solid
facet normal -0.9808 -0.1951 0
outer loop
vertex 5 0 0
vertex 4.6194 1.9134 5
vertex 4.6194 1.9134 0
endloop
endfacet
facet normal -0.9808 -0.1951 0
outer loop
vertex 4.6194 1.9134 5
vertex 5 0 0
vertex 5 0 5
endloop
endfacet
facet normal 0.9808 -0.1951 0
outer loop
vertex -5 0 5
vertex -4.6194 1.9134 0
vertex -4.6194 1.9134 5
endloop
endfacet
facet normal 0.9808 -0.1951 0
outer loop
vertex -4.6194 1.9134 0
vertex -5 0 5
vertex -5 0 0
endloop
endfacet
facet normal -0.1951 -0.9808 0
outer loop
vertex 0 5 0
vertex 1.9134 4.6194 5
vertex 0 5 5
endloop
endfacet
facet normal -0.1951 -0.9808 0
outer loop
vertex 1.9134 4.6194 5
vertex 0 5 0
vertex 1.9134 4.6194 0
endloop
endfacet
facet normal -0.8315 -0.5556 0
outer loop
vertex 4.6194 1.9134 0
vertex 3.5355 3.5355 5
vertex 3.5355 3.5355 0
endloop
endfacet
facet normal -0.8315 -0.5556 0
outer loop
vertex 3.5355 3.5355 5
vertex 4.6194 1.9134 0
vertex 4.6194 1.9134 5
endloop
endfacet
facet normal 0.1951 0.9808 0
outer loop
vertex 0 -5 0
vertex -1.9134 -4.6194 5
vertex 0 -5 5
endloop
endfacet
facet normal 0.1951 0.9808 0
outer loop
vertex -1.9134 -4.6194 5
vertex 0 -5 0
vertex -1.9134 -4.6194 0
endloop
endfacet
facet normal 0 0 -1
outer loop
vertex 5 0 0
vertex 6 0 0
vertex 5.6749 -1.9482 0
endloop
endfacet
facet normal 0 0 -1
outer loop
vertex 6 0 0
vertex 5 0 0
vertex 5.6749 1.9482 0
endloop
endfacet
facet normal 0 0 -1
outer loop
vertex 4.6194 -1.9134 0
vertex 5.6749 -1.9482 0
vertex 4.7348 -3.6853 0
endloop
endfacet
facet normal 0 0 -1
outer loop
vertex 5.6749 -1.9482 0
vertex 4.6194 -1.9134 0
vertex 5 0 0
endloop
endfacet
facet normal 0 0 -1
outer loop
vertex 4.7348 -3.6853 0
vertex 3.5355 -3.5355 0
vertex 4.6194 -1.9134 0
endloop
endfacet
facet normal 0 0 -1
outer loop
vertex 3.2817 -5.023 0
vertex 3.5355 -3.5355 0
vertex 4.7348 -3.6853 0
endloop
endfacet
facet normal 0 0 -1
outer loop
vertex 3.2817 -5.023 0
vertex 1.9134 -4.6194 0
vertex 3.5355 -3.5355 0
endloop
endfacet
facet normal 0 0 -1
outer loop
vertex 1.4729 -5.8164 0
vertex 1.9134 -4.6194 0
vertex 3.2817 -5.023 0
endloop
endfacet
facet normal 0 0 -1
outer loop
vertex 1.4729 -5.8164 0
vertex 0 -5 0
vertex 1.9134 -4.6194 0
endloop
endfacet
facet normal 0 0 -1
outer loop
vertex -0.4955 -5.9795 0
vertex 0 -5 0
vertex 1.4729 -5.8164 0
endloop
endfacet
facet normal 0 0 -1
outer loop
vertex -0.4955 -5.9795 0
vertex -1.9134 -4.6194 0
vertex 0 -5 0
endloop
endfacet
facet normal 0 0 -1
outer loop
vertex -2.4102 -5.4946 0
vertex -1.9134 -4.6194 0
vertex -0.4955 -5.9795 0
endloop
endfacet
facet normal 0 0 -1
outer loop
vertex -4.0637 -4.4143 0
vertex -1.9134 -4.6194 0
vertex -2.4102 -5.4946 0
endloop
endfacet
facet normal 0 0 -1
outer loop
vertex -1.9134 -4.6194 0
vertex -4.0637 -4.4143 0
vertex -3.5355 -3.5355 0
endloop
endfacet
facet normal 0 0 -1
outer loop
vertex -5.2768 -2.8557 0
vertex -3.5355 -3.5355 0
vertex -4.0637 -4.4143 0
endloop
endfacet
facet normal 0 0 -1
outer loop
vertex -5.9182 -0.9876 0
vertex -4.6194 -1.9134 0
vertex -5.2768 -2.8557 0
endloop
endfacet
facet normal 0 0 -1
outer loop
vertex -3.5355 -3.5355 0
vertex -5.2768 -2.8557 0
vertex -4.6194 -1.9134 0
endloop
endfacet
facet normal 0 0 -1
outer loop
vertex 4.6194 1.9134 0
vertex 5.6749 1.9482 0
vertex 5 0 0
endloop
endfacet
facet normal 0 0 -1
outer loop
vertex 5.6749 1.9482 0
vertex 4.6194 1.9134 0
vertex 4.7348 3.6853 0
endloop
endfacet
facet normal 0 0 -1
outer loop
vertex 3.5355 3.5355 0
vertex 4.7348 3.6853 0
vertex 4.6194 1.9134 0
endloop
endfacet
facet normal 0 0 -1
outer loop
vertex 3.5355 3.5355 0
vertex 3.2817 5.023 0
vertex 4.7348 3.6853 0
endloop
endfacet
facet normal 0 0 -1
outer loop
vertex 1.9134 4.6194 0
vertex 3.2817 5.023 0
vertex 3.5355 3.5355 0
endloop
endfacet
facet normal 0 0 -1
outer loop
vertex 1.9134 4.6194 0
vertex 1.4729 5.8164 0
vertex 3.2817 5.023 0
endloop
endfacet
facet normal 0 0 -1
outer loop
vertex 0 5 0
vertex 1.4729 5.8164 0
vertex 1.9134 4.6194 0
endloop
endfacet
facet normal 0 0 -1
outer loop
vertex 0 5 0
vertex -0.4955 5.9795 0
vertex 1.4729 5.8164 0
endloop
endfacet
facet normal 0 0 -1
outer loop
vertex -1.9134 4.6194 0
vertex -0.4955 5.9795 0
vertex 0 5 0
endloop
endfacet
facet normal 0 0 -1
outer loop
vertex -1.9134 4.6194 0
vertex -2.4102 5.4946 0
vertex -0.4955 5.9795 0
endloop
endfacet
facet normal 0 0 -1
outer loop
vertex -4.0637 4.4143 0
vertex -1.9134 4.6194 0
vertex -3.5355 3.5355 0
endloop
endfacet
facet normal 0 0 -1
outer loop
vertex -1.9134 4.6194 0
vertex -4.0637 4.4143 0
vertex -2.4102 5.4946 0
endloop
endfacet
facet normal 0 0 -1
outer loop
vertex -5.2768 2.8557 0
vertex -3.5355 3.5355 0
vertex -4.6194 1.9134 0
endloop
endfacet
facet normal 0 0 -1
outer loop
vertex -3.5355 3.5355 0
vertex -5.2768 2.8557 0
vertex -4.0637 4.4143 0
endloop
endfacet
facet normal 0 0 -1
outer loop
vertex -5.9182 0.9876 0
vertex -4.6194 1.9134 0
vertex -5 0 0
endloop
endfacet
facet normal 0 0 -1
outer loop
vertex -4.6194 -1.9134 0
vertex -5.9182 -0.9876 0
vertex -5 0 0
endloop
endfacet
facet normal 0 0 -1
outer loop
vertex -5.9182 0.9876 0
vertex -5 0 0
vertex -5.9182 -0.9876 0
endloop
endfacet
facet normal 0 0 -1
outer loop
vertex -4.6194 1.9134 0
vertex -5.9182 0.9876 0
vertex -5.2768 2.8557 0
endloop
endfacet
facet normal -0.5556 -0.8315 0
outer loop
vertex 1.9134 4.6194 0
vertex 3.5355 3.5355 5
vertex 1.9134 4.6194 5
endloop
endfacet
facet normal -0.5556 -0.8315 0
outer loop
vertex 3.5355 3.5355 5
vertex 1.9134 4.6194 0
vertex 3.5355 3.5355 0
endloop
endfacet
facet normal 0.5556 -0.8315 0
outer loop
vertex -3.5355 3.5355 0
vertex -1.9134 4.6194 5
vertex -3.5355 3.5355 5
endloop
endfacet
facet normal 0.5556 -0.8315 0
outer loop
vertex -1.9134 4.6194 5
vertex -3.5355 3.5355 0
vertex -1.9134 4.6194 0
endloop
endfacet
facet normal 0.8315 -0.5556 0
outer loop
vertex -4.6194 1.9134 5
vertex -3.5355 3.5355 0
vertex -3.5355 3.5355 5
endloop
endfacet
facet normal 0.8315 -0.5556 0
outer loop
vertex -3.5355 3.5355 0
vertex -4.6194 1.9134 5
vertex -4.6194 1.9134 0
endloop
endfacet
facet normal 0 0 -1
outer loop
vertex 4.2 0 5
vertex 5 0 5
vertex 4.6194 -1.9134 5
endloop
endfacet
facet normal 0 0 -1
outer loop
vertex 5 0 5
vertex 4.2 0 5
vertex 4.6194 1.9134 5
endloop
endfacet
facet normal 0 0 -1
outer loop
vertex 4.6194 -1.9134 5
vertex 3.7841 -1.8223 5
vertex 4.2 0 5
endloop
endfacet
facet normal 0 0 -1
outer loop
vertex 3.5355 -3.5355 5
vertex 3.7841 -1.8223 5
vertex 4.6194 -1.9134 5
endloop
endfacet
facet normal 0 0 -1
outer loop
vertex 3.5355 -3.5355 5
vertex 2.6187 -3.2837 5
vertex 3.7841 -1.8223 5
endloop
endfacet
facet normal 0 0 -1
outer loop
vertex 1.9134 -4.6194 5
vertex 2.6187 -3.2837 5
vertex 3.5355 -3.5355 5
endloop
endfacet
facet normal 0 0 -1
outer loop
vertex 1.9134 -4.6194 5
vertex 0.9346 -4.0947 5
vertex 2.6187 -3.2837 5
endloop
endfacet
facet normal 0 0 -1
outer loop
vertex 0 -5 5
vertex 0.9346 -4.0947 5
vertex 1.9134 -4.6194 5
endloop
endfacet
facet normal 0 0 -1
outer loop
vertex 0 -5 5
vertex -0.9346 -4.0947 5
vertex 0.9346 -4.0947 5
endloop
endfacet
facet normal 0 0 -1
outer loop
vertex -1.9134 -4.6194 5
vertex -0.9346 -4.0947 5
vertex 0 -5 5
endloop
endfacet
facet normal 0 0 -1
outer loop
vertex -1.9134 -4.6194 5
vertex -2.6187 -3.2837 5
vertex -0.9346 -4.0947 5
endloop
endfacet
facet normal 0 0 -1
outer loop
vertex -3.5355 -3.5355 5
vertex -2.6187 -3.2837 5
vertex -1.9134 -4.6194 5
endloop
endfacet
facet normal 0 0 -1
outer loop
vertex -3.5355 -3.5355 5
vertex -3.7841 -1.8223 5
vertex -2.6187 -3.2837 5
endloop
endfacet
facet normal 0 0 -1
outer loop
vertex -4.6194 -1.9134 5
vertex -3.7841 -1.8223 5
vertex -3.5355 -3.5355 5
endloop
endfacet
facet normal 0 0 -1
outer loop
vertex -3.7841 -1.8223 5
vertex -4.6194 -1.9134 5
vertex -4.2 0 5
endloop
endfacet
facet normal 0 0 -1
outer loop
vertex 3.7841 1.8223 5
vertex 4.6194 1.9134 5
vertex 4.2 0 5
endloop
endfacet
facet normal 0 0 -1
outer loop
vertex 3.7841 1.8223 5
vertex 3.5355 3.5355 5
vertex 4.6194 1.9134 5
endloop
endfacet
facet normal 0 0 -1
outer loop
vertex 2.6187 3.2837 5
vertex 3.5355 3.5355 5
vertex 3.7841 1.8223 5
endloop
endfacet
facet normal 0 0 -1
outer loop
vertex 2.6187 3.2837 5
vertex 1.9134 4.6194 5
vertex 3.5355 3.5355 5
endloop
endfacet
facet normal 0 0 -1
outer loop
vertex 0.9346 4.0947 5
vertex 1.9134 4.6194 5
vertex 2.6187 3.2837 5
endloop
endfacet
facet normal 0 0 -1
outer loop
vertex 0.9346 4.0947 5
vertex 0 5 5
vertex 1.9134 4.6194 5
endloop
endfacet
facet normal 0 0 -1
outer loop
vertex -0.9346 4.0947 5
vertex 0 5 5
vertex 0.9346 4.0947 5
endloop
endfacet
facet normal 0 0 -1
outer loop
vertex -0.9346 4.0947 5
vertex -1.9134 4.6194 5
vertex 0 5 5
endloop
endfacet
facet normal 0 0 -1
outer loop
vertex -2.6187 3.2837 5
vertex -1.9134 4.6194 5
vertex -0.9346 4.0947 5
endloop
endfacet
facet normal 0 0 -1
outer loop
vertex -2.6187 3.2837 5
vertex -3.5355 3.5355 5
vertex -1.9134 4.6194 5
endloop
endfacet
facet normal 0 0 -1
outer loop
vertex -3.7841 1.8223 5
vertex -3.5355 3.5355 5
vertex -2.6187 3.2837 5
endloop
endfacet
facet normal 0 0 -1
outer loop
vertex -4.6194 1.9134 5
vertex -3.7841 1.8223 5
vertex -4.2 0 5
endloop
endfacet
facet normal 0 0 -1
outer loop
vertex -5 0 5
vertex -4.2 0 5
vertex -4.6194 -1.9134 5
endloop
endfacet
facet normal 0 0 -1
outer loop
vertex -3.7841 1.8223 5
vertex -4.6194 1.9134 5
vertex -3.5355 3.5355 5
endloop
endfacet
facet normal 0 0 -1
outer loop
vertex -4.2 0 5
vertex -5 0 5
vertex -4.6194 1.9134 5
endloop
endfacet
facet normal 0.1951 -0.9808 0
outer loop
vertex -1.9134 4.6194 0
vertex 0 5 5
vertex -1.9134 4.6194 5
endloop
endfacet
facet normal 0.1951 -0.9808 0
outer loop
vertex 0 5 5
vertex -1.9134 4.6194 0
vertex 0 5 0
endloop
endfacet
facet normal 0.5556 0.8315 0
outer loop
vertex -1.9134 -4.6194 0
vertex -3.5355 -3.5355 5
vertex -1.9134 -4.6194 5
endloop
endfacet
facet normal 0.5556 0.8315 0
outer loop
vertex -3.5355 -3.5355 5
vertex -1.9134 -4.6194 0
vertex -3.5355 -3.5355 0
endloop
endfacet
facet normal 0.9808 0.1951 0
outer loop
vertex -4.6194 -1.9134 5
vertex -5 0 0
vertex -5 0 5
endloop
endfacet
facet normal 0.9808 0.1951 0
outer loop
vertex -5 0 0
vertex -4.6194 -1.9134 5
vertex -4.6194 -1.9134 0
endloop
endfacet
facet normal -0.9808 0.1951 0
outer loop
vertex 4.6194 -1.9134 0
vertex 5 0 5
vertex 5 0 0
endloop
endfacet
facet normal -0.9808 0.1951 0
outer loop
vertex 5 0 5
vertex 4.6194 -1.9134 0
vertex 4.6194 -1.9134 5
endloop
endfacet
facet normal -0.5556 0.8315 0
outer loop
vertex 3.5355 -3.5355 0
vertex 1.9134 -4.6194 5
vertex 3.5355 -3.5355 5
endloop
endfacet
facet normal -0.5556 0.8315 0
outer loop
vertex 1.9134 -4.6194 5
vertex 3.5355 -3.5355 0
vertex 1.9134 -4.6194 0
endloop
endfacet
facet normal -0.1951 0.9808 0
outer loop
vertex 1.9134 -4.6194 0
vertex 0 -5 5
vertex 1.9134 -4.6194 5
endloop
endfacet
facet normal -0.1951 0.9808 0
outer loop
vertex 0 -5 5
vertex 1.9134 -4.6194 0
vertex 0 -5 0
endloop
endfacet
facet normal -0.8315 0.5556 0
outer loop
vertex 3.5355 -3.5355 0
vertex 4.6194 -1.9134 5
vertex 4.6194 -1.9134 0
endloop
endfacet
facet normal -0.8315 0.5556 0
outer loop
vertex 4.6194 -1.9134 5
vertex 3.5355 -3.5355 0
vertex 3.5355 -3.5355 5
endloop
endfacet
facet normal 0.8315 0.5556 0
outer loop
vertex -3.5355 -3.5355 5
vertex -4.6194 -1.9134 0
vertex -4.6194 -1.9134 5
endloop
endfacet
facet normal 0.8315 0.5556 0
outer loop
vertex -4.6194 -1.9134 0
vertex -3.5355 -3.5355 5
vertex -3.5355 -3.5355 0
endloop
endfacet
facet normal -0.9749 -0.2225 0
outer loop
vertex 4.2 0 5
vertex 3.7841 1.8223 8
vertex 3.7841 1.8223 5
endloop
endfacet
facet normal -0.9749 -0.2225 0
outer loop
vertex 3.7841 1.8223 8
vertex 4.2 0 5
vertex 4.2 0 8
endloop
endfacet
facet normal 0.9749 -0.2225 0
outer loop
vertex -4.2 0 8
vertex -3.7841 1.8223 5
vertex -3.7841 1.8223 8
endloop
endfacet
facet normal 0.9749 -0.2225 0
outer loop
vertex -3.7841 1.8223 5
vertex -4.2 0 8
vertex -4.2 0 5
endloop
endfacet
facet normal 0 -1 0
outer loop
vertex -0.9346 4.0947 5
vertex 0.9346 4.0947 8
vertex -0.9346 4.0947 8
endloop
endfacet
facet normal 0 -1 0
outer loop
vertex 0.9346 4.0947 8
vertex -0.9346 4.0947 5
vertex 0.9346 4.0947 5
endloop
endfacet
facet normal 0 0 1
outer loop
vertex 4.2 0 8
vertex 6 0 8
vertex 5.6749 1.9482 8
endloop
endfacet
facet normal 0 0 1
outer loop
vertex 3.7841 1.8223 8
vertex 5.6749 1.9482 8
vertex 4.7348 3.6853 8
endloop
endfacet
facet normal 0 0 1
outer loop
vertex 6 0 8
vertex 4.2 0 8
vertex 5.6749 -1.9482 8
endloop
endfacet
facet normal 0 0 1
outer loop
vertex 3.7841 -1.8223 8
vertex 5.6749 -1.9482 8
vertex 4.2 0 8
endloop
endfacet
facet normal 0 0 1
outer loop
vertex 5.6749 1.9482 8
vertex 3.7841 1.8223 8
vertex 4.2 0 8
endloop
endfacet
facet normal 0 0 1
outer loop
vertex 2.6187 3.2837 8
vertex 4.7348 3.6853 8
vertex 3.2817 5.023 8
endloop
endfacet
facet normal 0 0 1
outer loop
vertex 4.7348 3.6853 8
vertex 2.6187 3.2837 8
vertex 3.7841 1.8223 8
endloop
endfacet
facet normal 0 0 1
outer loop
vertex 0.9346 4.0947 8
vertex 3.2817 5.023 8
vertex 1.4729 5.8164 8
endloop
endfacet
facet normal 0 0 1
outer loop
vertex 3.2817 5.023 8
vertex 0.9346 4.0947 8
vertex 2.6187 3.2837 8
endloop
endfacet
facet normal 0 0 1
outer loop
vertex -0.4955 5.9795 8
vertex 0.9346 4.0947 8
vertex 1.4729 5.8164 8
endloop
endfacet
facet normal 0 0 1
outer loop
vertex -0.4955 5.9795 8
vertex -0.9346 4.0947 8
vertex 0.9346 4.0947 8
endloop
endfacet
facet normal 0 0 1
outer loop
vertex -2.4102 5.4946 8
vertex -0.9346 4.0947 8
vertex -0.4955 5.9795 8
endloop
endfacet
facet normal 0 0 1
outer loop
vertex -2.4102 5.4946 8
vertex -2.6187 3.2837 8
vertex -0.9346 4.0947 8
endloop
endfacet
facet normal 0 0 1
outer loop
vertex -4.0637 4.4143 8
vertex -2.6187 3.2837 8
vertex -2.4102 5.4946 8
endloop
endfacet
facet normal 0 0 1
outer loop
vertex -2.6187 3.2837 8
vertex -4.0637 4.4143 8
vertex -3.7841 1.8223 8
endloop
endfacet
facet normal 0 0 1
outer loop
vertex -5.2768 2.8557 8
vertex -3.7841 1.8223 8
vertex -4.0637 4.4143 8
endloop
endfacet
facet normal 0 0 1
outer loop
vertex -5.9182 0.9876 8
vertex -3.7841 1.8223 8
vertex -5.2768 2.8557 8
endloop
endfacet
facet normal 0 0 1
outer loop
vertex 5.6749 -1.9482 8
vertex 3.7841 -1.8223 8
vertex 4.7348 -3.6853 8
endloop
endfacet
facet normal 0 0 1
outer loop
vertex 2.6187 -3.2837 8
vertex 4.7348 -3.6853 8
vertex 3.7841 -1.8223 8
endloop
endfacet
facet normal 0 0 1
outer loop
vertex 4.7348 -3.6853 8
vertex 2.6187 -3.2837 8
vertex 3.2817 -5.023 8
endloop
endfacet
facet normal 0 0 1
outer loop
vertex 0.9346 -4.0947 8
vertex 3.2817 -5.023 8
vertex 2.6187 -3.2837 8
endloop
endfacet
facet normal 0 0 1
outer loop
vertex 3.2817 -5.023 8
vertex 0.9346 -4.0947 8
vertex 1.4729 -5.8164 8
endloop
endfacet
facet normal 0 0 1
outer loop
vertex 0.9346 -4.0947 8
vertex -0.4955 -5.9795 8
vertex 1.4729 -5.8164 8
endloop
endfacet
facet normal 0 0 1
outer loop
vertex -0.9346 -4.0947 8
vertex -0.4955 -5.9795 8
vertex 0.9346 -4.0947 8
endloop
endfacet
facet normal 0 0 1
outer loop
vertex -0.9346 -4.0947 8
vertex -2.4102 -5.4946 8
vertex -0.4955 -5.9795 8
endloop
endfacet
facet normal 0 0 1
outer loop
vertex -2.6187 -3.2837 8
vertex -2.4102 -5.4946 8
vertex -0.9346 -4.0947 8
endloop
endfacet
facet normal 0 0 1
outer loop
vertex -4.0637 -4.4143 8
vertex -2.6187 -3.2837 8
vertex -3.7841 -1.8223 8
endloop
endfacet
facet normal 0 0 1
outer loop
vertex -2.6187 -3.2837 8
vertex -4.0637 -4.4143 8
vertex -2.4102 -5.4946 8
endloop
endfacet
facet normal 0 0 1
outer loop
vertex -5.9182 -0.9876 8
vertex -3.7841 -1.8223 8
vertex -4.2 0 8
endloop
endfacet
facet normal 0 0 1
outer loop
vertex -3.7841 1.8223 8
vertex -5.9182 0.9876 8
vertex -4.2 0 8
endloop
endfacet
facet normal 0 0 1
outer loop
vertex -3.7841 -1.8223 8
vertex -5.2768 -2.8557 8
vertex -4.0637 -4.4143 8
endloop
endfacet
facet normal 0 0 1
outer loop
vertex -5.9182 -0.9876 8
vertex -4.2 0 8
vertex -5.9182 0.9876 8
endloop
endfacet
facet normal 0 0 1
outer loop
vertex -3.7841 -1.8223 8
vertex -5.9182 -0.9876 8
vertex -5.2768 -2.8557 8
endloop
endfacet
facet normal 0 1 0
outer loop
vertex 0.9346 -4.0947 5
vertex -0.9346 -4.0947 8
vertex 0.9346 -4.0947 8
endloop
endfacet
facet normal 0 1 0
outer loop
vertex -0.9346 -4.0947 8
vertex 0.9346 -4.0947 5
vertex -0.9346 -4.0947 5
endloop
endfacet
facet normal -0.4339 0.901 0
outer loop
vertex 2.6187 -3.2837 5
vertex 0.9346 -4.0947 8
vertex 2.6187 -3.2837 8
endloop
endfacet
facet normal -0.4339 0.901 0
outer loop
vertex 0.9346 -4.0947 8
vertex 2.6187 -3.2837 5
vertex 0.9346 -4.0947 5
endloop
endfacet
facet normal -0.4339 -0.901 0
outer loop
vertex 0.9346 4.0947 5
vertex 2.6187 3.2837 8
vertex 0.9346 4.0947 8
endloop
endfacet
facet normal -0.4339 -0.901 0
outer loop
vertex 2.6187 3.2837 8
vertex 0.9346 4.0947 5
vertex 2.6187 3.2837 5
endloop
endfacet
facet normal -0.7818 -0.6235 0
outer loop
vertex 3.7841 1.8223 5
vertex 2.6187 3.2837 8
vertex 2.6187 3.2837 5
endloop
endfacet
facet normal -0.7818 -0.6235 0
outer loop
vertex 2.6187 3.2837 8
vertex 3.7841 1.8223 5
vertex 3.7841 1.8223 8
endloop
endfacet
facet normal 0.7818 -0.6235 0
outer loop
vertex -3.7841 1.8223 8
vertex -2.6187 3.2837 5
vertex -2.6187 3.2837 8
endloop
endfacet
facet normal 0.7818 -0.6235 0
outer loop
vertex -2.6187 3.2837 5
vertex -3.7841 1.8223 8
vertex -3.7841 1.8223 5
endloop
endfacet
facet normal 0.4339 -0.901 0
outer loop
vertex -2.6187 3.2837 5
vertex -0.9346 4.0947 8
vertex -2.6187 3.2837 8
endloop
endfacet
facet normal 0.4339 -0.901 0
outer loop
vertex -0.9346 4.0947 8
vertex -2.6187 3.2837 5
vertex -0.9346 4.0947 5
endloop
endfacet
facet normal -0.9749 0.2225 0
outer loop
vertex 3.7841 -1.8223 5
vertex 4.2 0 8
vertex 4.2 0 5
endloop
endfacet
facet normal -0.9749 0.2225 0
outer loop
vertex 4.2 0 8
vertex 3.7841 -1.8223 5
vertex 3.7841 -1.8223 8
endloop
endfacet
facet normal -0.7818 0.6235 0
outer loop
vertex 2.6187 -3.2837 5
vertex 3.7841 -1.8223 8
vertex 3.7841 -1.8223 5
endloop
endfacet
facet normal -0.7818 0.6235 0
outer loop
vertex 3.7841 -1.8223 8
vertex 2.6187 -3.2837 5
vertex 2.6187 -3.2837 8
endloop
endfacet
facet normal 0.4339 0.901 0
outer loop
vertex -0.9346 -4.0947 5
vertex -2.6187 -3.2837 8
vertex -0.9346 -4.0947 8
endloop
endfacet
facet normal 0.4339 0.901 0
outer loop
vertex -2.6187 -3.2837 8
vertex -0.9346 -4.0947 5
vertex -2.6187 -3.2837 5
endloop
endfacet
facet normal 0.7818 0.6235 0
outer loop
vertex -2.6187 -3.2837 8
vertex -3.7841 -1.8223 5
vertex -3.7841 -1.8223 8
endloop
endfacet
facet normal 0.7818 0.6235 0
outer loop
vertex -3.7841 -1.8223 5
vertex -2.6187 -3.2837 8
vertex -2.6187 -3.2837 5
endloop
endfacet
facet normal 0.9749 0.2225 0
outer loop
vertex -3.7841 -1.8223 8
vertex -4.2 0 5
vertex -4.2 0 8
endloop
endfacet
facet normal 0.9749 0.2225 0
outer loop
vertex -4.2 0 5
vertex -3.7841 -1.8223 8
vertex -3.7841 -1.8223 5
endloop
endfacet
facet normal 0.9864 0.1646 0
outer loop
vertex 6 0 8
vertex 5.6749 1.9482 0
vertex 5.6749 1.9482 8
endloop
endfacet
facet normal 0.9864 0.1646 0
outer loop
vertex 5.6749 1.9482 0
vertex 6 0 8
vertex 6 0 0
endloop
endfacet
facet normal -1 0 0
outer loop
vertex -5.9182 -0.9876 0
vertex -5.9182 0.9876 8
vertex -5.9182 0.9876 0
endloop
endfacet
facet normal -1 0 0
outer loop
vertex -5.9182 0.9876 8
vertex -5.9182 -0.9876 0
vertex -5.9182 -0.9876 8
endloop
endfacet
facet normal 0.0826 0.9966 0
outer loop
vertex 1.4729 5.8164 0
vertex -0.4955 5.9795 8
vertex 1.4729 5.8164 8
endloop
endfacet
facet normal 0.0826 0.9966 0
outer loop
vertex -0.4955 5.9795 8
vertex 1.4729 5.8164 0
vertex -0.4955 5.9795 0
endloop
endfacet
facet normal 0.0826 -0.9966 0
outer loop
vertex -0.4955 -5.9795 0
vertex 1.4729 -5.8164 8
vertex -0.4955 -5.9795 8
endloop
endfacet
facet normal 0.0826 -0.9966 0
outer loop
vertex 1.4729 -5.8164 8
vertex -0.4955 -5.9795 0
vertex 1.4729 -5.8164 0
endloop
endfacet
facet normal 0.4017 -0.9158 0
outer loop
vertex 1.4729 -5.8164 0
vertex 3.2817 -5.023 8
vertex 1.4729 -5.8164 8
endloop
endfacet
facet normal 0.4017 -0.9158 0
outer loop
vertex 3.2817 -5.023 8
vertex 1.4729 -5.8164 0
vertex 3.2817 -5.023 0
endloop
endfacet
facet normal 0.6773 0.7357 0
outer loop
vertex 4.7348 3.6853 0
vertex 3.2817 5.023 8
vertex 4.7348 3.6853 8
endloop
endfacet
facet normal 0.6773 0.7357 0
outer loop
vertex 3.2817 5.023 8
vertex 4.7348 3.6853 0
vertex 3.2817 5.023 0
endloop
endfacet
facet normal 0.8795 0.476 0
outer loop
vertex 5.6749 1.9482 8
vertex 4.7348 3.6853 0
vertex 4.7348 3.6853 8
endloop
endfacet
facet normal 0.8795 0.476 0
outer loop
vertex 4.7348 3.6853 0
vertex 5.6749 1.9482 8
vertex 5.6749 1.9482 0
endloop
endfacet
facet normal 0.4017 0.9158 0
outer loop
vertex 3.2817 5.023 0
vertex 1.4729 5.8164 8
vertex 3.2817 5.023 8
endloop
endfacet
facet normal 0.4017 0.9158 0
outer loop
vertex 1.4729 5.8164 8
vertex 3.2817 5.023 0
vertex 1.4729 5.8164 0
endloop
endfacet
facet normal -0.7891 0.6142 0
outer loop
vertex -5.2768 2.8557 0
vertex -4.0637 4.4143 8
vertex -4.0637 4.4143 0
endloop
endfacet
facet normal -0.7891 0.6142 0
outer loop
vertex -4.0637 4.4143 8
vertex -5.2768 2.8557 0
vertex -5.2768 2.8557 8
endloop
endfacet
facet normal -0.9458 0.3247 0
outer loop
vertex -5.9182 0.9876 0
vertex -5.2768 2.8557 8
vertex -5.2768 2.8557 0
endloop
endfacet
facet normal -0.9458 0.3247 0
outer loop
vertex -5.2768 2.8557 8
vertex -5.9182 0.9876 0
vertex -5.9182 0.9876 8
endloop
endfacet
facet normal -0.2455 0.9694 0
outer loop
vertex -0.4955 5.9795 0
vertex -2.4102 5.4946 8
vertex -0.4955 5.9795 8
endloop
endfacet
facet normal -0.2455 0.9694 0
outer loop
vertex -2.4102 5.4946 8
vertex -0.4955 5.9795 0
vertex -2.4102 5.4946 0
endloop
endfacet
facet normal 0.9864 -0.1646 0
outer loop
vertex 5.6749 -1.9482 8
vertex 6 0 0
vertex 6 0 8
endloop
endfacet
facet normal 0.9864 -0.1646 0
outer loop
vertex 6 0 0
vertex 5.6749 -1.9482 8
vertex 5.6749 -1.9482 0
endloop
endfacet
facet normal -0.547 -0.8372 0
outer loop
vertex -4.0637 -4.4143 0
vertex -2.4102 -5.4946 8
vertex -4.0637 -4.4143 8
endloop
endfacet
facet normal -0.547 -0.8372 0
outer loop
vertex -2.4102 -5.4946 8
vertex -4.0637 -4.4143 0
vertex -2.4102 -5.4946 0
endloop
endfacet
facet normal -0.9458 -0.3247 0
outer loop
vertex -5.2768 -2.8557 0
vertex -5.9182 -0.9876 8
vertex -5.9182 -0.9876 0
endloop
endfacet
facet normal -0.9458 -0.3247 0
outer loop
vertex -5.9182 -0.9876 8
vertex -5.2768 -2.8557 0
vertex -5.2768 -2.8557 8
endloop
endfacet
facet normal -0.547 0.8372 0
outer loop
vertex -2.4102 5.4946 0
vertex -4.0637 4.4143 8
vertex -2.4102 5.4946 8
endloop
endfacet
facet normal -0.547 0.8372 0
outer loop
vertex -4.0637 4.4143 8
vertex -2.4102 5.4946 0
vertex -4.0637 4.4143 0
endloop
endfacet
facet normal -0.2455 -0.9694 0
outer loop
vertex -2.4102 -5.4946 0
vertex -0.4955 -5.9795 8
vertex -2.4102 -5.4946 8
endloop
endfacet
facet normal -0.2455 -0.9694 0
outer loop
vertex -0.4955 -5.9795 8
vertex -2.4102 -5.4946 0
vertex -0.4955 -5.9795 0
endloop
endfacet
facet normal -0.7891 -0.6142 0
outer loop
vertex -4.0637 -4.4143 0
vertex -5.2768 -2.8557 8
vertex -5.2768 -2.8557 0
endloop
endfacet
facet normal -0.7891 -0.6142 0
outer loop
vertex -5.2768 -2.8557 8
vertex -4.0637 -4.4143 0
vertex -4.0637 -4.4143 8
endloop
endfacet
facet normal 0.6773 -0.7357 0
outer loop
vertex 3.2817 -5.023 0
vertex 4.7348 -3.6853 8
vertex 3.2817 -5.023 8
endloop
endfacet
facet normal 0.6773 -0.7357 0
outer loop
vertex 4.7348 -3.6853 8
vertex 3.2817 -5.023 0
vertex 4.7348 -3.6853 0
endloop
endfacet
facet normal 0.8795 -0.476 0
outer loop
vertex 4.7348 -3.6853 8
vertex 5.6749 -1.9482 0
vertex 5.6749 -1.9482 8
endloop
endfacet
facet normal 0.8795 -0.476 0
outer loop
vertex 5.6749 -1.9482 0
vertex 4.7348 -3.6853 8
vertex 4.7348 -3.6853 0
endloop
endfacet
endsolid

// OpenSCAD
// Slip ring
small_cylinder = 8.4;
length_small = 5;
big_cylinder = 10;
length_big = 3;
min_thickness = 1;

/*
// motor
small_cylinder = 5.2;
length_small = 5;
big_cylinder = 7;
length_big = 3;
min_thickness = 1;*/

difference() {
    cylinder(h = length_big+length_small, d=big_cylinder+2*min_thickness);
    union() {
      cylinder(h=length_small, d=big_cylinder);
      translate([0,0,length_big]) cylinder(h = length_small, d=small_cylinder);
    }
}
